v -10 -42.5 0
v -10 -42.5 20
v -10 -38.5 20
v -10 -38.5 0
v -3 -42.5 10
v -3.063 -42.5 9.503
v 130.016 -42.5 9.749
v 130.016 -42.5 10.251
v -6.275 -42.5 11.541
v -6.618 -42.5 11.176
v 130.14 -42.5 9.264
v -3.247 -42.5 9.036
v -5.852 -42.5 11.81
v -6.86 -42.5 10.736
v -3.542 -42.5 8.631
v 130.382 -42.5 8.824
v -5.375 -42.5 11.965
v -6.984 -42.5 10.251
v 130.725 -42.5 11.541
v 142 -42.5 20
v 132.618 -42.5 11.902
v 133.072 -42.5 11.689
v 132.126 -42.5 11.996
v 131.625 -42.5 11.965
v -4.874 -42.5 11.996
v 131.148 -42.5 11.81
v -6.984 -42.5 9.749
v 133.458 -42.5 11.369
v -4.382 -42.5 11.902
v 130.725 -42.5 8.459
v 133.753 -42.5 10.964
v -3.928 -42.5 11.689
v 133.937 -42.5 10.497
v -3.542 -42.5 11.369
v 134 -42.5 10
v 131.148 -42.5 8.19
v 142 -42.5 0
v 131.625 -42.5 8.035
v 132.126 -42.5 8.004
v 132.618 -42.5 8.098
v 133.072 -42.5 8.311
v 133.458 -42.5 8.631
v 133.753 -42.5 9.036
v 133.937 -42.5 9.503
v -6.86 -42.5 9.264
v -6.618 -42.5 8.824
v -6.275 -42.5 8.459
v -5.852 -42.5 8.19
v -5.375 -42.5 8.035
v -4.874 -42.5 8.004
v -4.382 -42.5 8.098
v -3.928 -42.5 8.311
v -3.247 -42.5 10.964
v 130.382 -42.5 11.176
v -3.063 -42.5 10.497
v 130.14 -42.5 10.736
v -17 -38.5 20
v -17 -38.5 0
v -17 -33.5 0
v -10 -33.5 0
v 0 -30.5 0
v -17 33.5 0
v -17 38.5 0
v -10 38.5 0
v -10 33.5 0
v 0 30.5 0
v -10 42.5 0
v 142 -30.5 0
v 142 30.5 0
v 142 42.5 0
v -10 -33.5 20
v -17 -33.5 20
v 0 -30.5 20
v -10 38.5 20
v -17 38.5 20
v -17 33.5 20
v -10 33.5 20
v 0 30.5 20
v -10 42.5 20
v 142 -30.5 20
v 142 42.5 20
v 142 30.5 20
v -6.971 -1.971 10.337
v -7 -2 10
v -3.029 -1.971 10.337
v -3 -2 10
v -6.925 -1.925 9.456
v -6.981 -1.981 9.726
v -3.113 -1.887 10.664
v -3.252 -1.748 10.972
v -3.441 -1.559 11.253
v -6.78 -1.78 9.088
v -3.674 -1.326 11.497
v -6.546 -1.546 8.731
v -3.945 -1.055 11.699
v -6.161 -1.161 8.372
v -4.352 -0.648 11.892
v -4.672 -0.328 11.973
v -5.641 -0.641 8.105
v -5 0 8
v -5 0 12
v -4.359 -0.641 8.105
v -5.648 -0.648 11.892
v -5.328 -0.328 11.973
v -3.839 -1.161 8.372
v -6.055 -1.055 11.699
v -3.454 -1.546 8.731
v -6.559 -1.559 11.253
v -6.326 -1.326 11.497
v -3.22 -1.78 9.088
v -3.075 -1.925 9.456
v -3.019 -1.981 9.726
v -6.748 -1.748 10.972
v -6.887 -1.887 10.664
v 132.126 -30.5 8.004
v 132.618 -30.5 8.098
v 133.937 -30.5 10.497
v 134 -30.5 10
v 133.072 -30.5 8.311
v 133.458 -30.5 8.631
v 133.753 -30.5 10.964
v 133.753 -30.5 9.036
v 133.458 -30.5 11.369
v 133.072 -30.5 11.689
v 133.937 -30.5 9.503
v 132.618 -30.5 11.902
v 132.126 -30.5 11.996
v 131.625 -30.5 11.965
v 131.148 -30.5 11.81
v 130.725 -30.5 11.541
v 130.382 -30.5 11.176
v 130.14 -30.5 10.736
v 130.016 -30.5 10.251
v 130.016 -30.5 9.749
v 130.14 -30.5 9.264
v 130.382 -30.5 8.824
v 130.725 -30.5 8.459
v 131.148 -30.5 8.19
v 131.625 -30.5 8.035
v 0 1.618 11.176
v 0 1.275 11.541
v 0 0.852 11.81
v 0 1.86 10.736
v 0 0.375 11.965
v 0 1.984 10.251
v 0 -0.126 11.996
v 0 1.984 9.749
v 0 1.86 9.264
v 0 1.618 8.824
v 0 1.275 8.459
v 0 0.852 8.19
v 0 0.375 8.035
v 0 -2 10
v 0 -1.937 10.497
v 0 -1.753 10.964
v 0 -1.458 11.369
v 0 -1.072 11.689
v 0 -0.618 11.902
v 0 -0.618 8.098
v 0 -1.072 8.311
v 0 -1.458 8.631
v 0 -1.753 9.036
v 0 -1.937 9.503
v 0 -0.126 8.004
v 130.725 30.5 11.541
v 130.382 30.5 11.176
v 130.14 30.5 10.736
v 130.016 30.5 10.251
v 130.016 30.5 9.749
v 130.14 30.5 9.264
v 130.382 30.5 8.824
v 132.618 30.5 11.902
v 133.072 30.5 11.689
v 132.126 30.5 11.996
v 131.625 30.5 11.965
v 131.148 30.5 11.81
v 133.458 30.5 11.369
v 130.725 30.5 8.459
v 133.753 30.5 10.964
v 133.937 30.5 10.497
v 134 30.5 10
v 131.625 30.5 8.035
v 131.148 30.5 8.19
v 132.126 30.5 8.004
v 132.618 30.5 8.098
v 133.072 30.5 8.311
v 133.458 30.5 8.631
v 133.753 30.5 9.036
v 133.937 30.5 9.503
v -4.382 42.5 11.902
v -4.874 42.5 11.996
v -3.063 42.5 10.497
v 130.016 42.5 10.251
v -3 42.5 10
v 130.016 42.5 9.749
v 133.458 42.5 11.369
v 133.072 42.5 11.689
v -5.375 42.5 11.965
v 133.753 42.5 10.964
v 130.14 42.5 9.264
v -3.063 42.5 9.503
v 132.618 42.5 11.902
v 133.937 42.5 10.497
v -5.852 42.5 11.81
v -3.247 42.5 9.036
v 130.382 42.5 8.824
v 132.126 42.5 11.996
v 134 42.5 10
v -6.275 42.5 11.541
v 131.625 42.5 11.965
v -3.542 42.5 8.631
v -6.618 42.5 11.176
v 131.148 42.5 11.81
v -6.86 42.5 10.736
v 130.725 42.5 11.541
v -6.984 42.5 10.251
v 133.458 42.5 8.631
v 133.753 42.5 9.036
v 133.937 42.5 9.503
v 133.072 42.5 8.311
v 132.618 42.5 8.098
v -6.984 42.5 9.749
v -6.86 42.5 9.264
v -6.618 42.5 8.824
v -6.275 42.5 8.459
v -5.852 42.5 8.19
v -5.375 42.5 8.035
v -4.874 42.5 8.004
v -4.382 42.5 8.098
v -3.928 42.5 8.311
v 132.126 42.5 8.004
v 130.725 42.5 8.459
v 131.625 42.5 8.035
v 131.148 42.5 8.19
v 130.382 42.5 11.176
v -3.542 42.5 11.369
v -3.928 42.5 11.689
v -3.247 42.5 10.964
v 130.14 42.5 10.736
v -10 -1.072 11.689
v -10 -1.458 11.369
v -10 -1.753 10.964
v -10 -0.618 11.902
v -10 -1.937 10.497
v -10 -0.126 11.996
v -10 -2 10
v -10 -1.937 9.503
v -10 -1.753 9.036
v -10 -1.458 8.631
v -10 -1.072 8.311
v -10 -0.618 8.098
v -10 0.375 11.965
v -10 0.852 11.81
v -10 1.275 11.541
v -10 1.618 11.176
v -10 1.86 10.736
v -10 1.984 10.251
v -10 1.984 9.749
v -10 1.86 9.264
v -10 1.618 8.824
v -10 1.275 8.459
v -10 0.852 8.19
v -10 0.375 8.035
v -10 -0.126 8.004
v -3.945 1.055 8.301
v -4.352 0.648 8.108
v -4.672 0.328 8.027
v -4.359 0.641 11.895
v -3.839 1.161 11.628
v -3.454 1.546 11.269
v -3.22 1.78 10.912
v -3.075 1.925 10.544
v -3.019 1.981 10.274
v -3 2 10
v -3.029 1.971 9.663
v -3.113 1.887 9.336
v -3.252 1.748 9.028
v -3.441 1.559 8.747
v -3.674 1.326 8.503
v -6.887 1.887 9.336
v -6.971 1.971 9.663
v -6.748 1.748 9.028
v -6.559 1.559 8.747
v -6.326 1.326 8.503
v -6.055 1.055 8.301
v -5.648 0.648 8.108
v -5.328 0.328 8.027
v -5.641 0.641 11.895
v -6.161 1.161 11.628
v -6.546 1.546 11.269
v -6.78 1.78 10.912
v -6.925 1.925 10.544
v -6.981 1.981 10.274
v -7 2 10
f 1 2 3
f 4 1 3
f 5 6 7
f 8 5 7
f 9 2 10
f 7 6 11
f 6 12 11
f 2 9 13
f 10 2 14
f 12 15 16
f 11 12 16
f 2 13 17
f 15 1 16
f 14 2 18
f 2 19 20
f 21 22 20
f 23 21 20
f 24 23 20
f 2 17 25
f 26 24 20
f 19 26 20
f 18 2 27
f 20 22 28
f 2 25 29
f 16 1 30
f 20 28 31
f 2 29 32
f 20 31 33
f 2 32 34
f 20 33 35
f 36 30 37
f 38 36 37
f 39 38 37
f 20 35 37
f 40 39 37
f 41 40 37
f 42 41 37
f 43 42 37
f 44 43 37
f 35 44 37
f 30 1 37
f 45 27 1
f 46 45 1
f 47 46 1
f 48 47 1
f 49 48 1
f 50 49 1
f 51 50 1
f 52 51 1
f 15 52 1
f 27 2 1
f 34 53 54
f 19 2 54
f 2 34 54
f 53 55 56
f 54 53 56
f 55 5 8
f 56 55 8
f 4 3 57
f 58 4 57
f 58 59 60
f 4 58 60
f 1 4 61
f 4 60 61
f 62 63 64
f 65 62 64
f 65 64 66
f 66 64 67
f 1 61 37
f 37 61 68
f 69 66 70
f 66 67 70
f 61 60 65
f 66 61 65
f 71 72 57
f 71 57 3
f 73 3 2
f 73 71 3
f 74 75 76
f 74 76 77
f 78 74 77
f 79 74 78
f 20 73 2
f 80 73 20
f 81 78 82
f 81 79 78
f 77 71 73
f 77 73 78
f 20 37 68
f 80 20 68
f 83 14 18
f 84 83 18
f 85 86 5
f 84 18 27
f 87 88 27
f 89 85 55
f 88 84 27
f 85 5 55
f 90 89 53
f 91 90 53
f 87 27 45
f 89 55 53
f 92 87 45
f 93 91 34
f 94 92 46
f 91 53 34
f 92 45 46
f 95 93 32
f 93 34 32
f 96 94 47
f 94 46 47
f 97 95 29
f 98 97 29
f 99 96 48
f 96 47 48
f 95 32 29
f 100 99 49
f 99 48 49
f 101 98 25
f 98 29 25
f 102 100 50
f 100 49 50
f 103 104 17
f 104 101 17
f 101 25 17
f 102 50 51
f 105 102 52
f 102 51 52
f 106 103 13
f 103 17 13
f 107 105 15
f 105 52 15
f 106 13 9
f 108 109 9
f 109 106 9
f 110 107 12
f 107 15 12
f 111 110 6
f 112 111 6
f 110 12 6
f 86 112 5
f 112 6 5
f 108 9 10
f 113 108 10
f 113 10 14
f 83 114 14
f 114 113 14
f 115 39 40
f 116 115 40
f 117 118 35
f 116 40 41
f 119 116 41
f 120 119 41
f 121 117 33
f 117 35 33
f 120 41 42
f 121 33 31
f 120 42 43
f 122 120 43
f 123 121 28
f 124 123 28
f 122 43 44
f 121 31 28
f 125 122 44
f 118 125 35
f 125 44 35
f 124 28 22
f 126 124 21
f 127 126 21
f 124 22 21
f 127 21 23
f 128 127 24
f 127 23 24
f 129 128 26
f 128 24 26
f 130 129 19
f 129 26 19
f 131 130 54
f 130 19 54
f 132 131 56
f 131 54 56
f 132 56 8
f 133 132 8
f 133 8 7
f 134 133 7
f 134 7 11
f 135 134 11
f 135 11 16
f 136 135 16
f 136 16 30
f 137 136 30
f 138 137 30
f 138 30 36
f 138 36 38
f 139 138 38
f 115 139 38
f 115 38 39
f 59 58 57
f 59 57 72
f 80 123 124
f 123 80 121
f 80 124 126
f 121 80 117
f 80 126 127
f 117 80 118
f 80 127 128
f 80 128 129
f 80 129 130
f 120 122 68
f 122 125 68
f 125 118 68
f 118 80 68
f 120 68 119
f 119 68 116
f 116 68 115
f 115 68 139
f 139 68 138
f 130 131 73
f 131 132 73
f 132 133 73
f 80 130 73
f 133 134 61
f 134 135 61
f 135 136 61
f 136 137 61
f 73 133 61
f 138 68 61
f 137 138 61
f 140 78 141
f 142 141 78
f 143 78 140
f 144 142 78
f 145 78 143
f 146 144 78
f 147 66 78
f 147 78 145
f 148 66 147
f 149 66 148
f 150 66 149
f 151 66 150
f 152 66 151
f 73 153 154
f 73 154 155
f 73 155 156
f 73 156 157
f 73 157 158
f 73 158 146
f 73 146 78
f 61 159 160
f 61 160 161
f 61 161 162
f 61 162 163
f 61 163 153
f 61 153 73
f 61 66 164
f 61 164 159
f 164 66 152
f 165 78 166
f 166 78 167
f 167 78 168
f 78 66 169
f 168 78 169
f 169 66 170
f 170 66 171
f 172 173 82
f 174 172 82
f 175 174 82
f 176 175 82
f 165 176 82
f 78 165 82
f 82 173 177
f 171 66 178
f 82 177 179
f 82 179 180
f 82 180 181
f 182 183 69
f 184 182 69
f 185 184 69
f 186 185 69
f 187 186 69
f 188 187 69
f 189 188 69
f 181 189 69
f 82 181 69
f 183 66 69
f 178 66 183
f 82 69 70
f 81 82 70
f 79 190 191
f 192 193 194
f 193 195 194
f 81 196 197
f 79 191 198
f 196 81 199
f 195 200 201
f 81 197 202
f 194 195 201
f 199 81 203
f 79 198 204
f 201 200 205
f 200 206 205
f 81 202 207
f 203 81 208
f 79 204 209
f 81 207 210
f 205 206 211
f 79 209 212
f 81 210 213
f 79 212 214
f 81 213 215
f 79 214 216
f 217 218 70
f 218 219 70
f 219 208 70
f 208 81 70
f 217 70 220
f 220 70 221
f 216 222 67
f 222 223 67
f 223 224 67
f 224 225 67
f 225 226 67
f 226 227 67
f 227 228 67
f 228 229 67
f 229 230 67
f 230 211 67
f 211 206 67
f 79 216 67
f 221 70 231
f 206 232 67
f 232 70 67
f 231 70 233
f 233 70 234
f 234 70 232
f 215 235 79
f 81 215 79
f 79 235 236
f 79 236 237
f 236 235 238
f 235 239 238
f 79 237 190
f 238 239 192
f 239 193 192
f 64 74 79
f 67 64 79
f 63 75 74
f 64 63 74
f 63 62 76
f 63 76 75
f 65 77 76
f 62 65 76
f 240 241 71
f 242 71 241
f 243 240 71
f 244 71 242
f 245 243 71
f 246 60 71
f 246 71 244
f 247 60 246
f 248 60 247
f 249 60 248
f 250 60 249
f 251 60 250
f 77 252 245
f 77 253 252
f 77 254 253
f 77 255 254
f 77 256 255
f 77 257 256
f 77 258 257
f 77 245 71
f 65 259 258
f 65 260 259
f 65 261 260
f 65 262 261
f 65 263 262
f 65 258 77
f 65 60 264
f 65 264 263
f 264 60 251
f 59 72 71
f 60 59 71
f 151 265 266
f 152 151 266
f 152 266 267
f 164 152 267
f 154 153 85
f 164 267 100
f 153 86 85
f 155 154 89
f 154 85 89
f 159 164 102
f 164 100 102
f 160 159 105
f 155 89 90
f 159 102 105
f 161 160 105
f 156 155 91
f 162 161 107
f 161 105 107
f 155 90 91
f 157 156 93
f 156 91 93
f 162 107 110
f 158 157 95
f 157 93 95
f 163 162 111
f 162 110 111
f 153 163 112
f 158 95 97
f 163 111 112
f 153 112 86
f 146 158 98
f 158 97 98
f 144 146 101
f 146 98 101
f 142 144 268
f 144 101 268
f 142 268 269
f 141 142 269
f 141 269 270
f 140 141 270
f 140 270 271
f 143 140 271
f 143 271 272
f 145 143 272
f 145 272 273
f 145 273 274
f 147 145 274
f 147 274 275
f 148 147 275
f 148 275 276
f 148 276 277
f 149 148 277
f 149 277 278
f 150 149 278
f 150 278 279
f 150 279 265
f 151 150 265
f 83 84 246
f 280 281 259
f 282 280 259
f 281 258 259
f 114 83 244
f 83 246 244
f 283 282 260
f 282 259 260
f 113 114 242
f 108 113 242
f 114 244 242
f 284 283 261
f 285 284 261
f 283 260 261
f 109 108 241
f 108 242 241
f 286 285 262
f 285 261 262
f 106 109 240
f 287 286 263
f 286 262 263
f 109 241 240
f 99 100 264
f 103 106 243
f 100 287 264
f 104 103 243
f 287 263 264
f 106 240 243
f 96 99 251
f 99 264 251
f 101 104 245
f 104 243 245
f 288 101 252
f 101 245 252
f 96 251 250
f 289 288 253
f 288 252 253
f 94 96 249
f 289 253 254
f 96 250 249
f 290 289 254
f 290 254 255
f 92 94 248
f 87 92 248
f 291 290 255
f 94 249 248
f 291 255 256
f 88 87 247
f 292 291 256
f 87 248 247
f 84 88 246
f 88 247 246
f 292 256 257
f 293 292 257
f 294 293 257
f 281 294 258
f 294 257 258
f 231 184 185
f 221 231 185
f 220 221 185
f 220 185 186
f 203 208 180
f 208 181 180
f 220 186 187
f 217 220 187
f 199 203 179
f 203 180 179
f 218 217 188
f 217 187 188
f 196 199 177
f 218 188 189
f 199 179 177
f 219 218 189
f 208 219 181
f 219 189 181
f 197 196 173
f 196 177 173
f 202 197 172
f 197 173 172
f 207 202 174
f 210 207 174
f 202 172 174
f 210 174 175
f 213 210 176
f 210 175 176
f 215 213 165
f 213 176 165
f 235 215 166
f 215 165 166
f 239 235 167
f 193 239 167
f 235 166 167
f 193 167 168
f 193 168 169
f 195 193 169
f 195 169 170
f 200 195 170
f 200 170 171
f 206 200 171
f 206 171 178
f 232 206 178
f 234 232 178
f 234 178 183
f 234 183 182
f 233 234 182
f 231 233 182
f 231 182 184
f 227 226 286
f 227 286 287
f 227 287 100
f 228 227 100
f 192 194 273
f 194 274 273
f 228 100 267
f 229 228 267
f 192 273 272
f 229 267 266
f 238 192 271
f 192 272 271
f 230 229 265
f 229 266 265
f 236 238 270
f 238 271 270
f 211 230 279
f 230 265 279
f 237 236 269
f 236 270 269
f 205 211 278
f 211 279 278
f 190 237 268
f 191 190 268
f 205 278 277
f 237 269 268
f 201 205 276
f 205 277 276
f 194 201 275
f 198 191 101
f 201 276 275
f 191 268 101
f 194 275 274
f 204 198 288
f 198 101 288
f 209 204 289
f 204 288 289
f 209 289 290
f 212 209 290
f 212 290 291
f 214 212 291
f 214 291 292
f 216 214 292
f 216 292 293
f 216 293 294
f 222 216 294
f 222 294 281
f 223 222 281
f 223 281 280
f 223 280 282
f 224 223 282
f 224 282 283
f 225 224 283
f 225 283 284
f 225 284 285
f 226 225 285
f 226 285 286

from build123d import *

# Parameters (mm, degrees)
PAD_DEPTH       = 20
SKETCH004_R     = 2
POCKET002_DEPTH = 152.001
SKETCH005_R     = 2
POCKET003_DEPTH = 85.001


with BuildPart() as part:
    # Sketch → Pad (new body)
    with BuildSketch(Plane.XY):
        Polygon((-10, -42.5), (142, -42.5), (142, -30.5), (0, -30.5), (0, 30.5), (142, 30.5), (142, 42.5), (-10, 42.5), (-10, 38.5), (-17, 38.5), (-17, 33.5), (-10, 33.5), (-10, -33.5), (-17, -33.5), (-17, -38.5), (-10, -38.5), align=None)
    extrude(amount=PAD_DEPTH)

    # Sketch004 → Pocket002 (cut, through all)
    with BuildSketch(Plane(origin=(-10, 0, 0), x_dir=(0, -1, 0), z_dir=(-1, 0, 0))):
        with Locations((0, 10)):
            Circle(SKETCH004_R)
    extrude(amount=-POCKET002_DEPTH, mode=Mode.SUBTRACT)

    # Sketch005 → Pocket003 (cut, through all)
    with BuildSketch(Plane.XZ.offset(42.5)):
        with Locations((-5, 10)):
            Circle(SKETCH005_R)
        with Locations((132, 10)):
            Circle(SKETCH005_R)
    extrude(amount=-POCKET003_DEPTH, mode=Mode.SUBTRACT)


solid = part.part
